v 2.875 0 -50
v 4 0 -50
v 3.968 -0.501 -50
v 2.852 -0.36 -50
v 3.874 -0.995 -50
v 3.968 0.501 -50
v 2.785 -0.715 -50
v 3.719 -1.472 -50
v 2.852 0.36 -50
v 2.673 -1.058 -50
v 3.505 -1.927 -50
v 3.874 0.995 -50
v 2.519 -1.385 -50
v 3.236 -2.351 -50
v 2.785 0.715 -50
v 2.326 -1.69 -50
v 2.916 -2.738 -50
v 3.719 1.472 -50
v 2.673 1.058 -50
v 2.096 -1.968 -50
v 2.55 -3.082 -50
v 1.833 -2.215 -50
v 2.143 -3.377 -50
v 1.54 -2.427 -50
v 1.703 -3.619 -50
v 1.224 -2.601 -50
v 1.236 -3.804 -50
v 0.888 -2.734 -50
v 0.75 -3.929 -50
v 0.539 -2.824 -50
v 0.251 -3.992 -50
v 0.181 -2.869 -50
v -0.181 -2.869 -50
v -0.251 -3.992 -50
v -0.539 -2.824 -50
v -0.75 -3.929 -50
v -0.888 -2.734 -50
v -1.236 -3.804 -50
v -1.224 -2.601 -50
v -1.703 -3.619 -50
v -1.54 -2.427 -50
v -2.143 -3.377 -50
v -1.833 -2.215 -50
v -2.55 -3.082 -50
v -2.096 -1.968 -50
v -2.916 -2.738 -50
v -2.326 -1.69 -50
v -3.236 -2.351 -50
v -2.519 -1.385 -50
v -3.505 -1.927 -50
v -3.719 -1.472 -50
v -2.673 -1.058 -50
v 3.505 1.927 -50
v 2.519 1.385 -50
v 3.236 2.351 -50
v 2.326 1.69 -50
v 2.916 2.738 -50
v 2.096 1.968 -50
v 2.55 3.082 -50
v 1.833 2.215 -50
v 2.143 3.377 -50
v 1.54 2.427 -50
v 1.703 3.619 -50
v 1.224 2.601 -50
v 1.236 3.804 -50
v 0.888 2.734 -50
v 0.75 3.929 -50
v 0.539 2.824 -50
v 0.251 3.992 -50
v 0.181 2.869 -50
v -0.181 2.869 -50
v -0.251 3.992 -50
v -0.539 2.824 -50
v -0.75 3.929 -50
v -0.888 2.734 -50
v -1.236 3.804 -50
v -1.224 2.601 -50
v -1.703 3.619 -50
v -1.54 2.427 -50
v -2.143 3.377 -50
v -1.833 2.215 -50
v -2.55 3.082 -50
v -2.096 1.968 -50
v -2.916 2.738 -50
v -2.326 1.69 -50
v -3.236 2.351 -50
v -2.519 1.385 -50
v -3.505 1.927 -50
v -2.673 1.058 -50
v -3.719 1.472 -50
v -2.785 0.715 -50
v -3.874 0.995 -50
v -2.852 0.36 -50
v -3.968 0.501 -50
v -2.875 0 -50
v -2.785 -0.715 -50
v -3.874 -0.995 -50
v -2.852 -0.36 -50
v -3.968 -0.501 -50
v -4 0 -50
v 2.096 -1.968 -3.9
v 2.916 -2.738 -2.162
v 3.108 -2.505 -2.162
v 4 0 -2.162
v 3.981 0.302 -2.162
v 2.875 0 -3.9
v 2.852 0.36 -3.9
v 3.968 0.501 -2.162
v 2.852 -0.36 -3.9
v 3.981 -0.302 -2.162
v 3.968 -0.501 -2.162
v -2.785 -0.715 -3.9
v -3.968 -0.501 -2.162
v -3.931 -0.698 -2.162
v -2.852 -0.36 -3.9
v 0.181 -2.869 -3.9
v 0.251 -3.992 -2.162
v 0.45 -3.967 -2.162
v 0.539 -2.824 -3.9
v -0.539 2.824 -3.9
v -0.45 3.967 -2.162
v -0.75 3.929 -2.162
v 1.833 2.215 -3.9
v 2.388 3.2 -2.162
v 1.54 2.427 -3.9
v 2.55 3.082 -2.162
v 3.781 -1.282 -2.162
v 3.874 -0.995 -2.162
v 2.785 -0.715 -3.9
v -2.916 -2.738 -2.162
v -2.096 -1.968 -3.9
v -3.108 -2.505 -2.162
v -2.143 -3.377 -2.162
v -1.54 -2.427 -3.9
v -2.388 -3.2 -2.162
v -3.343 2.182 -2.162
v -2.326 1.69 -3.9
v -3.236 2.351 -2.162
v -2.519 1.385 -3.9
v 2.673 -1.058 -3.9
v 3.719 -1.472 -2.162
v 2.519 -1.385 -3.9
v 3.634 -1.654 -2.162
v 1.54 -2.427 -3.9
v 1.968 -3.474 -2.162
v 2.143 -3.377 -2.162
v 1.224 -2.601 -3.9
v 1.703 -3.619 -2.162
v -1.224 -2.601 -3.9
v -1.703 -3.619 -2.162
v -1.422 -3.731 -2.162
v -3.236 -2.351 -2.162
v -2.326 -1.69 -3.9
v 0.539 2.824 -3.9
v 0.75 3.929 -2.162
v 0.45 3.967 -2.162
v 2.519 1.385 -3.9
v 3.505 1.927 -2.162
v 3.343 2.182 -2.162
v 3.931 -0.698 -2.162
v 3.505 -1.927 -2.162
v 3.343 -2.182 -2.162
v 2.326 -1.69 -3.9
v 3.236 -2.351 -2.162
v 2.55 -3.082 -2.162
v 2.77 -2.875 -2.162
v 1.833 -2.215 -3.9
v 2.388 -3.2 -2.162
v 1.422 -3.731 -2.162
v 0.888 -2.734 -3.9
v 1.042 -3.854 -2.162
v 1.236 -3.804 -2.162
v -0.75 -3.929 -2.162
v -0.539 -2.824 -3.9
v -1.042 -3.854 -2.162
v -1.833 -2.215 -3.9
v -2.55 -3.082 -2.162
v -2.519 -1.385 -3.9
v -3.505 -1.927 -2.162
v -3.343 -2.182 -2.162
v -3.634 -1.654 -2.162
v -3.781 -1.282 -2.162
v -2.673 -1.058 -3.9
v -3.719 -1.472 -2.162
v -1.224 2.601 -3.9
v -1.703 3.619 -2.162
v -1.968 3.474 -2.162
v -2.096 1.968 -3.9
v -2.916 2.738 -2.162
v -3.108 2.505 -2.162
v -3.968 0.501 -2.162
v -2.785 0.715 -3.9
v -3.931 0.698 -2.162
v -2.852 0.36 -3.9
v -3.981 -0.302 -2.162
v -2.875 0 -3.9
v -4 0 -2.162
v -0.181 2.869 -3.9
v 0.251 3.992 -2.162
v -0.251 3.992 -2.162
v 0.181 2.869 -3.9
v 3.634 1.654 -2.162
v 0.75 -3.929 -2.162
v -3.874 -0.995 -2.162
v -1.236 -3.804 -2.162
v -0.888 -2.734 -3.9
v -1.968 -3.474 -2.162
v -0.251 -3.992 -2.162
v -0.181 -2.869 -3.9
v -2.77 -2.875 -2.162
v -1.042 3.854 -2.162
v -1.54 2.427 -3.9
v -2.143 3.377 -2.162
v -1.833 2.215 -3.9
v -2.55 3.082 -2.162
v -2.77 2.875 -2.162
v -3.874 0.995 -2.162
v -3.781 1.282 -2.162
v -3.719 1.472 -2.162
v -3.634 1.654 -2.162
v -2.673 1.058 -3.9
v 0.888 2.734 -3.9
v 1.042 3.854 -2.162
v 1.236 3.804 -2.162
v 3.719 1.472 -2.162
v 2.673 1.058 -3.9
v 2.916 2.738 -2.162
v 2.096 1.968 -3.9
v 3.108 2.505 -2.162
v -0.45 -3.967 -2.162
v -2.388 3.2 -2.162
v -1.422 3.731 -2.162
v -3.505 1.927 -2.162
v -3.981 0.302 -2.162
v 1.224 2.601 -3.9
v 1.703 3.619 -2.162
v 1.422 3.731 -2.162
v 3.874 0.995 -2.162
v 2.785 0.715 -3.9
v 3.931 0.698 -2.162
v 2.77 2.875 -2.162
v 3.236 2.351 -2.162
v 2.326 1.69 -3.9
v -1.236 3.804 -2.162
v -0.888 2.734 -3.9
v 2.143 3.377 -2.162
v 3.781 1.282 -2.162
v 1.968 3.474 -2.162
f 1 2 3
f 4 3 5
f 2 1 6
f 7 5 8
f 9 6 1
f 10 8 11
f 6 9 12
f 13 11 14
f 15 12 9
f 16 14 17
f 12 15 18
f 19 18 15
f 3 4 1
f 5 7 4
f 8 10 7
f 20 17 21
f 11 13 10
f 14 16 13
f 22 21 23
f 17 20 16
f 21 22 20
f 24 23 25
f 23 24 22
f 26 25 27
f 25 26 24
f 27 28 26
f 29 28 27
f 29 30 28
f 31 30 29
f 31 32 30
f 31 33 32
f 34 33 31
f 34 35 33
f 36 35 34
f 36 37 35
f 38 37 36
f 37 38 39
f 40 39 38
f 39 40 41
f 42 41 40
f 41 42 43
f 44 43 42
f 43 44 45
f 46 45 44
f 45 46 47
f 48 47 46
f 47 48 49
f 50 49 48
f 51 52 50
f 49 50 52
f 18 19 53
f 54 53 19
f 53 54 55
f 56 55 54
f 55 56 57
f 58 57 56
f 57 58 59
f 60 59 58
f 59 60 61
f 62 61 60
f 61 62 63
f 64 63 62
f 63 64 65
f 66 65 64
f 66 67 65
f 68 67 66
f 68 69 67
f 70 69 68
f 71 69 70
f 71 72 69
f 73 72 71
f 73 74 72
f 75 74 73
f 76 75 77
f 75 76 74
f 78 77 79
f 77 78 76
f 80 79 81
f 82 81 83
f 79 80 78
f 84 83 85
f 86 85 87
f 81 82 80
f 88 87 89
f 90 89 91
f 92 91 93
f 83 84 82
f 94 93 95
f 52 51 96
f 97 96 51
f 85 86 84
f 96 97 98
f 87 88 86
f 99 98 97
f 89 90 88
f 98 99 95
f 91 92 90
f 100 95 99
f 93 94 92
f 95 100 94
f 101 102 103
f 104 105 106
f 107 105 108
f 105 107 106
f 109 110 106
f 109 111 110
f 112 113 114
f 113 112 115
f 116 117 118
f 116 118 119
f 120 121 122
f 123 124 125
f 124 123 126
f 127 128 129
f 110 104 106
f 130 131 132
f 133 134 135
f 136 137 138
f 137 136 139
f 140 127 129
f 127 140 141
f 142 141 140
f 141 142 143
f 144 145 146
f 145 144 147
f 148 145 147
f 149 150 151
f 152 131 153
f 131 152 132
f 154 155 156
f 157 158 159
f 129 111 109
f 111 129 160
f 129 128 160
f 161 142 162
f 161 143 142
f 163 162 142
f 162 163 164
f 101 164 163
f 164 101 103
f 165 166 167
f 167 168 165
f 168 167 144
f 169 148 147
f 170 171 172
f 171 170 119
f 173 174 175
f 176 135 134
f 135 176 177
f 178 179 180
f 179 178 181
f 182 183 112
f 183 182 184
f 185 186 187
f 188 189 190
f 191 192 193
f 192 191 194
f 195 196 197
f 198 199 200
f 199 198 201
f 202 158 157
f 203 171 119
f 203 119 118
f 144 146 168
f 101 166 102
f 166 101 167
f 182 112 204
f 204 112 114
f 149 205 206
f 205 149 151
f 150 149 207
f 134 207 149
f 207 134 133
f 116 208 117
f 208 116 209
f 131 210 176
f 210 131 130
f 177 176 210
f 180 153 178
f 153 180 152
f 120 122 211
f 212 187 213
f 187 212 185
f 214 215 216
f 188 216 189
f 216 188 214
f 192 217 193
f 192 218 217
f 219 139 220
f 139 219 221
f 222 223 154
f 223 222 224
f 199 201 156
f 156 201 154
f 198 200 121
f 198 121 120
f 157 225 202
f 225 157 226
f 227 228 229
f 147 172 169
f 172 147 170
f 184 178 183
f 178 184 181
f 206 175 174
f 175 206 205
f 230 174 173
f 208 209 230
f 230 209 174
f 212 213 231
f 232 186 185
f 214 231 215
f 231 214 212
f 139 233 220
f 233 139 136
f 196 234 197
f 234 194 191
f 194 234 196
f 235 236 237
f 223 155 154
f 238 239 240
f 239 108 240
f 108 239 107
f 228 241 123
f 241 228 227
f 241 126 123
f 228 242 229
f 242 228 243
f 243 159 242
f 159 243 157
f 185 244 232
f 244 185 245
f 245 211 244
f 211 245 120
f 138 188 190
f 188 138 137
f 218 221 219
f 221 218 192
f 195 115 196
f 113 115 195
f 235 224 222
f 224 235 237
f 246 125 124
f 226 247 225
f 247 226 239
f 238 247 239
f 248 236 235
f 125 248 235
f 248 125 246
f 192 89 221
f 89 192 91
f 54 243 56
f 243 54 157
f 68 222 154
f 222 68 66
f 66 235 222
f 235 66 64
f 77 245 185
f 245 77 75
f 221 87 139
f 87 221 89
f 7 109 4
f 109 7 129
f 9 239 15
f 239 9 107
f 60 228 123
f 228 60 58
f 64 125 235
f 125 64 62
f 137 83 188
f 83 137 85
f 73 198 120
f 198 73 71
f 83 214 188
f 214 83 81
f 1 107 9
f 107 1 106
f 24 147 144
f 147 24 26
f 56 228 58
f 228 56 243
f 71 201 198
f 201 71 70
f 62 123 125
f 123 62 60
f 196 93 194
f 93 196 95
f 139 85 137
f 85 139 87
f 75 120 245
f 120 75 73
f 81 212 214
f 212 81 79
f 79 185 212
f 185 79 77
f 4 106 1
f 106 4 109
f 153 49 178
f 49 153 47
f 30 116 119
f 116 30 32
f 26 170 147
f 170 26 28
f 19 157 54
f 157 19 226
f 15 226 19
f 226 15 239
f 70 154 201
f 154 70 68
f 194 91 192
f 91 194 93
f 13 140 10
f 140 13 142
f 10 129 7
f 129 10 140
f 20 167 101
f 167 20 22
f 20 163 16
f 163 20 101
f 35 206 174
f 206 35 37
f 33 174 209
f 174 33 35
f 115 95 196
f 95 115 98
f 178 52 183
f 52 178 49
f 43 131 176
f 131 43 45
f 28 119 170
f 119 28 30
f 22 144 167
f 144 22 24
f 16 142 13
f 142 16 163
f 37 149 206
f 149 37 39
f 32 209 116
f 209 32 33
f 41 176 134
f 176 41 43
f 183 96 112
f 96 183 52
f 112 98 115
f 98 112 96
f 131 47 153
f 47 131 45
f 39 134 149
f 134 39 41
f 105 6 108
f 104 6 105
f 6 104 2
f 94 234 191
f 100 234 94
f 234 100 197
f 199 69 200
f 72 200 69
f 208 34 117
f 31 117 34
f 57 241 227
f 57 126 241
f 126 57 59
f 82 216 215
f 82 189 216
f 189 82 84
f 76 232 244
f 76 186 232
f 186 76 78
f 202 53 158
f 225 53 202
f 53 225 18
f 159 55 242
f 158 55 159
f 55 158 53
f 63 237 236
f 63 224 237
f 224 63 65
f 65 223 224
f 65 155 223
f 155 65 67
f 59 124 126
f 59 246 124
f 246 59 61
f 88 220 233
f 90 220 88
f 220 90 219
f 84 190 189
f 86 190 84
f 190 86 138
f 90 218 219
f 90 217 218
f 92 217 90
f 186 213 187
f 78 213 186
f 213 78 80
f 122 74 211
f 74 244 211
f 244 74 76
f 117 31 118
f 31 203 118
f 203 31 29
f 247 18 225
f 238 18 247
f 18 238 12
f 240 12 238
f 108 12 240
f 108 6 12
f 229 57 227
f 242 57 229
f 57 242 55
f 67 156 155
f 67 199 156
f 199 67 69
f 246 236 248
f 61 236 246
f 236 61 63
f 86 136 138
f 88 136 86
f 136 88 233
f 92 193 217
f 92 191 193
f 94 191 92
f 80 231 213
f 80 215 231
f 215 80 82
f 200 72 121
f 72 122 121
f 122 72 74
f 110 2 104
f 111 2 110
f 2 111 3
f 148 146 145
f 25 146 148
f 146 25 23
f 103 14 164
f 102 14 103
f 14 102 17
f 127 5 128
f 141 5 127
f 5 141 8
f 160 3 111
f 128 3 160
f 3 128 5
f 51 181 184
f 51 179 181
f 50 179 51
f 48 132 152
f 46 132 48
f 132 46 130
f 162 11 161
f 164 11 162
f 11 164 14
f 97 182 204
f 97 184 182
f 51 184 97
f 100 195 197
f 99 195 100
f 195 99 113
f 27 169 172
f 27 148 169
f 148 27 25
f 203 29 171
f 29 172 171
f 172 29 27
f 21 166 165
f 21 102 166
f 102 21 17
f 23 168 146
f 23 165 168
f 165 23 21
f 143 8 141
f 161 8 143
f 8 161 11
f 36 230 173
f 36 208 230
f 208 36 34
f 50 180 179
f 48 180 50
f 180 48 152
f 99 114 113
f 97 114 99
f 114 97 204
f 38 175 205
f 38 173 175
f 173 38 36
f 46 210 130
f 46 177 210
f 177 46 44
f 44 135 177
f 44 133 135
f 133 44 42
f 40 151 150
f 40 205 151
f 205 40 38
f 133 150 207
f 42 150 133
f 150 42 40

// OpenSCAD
$fn = 50;


difference() {
	union() {
		translate(v = [0, 0, -50.0000000000]) {
			cylinder(h = 50, r = 4.0000000000);
		}
		cylinder(h = 0, r = 7.0000000000);
	}
	union() {
		translate(v = [0, 0, 0]) {
			rotate(a = [0, 0, 0]) {
				difference() {
					union() {
						#translate(v = [0, 0, -50.0000000000]) {
							cylinder(h = 50, r = 2.6000000000);
						}
						#translate(v = [0, 0, -3.9000000000]) {
							cylinder(h = 3.9000000000, r1 = 2.8750000000, r2 = 5.4000000000);
						}
						#translate(v = [0, 0, -50.0000000000]) {
							cylinder(h = 50, r = 2.8750000000);
						}
						#translate(v = [0, 0, -50.0000000000]) {
							cylinder(h = 50, r = 2.6000000000);
						}
					}
					union();
				}
			}
		}
	}
}
